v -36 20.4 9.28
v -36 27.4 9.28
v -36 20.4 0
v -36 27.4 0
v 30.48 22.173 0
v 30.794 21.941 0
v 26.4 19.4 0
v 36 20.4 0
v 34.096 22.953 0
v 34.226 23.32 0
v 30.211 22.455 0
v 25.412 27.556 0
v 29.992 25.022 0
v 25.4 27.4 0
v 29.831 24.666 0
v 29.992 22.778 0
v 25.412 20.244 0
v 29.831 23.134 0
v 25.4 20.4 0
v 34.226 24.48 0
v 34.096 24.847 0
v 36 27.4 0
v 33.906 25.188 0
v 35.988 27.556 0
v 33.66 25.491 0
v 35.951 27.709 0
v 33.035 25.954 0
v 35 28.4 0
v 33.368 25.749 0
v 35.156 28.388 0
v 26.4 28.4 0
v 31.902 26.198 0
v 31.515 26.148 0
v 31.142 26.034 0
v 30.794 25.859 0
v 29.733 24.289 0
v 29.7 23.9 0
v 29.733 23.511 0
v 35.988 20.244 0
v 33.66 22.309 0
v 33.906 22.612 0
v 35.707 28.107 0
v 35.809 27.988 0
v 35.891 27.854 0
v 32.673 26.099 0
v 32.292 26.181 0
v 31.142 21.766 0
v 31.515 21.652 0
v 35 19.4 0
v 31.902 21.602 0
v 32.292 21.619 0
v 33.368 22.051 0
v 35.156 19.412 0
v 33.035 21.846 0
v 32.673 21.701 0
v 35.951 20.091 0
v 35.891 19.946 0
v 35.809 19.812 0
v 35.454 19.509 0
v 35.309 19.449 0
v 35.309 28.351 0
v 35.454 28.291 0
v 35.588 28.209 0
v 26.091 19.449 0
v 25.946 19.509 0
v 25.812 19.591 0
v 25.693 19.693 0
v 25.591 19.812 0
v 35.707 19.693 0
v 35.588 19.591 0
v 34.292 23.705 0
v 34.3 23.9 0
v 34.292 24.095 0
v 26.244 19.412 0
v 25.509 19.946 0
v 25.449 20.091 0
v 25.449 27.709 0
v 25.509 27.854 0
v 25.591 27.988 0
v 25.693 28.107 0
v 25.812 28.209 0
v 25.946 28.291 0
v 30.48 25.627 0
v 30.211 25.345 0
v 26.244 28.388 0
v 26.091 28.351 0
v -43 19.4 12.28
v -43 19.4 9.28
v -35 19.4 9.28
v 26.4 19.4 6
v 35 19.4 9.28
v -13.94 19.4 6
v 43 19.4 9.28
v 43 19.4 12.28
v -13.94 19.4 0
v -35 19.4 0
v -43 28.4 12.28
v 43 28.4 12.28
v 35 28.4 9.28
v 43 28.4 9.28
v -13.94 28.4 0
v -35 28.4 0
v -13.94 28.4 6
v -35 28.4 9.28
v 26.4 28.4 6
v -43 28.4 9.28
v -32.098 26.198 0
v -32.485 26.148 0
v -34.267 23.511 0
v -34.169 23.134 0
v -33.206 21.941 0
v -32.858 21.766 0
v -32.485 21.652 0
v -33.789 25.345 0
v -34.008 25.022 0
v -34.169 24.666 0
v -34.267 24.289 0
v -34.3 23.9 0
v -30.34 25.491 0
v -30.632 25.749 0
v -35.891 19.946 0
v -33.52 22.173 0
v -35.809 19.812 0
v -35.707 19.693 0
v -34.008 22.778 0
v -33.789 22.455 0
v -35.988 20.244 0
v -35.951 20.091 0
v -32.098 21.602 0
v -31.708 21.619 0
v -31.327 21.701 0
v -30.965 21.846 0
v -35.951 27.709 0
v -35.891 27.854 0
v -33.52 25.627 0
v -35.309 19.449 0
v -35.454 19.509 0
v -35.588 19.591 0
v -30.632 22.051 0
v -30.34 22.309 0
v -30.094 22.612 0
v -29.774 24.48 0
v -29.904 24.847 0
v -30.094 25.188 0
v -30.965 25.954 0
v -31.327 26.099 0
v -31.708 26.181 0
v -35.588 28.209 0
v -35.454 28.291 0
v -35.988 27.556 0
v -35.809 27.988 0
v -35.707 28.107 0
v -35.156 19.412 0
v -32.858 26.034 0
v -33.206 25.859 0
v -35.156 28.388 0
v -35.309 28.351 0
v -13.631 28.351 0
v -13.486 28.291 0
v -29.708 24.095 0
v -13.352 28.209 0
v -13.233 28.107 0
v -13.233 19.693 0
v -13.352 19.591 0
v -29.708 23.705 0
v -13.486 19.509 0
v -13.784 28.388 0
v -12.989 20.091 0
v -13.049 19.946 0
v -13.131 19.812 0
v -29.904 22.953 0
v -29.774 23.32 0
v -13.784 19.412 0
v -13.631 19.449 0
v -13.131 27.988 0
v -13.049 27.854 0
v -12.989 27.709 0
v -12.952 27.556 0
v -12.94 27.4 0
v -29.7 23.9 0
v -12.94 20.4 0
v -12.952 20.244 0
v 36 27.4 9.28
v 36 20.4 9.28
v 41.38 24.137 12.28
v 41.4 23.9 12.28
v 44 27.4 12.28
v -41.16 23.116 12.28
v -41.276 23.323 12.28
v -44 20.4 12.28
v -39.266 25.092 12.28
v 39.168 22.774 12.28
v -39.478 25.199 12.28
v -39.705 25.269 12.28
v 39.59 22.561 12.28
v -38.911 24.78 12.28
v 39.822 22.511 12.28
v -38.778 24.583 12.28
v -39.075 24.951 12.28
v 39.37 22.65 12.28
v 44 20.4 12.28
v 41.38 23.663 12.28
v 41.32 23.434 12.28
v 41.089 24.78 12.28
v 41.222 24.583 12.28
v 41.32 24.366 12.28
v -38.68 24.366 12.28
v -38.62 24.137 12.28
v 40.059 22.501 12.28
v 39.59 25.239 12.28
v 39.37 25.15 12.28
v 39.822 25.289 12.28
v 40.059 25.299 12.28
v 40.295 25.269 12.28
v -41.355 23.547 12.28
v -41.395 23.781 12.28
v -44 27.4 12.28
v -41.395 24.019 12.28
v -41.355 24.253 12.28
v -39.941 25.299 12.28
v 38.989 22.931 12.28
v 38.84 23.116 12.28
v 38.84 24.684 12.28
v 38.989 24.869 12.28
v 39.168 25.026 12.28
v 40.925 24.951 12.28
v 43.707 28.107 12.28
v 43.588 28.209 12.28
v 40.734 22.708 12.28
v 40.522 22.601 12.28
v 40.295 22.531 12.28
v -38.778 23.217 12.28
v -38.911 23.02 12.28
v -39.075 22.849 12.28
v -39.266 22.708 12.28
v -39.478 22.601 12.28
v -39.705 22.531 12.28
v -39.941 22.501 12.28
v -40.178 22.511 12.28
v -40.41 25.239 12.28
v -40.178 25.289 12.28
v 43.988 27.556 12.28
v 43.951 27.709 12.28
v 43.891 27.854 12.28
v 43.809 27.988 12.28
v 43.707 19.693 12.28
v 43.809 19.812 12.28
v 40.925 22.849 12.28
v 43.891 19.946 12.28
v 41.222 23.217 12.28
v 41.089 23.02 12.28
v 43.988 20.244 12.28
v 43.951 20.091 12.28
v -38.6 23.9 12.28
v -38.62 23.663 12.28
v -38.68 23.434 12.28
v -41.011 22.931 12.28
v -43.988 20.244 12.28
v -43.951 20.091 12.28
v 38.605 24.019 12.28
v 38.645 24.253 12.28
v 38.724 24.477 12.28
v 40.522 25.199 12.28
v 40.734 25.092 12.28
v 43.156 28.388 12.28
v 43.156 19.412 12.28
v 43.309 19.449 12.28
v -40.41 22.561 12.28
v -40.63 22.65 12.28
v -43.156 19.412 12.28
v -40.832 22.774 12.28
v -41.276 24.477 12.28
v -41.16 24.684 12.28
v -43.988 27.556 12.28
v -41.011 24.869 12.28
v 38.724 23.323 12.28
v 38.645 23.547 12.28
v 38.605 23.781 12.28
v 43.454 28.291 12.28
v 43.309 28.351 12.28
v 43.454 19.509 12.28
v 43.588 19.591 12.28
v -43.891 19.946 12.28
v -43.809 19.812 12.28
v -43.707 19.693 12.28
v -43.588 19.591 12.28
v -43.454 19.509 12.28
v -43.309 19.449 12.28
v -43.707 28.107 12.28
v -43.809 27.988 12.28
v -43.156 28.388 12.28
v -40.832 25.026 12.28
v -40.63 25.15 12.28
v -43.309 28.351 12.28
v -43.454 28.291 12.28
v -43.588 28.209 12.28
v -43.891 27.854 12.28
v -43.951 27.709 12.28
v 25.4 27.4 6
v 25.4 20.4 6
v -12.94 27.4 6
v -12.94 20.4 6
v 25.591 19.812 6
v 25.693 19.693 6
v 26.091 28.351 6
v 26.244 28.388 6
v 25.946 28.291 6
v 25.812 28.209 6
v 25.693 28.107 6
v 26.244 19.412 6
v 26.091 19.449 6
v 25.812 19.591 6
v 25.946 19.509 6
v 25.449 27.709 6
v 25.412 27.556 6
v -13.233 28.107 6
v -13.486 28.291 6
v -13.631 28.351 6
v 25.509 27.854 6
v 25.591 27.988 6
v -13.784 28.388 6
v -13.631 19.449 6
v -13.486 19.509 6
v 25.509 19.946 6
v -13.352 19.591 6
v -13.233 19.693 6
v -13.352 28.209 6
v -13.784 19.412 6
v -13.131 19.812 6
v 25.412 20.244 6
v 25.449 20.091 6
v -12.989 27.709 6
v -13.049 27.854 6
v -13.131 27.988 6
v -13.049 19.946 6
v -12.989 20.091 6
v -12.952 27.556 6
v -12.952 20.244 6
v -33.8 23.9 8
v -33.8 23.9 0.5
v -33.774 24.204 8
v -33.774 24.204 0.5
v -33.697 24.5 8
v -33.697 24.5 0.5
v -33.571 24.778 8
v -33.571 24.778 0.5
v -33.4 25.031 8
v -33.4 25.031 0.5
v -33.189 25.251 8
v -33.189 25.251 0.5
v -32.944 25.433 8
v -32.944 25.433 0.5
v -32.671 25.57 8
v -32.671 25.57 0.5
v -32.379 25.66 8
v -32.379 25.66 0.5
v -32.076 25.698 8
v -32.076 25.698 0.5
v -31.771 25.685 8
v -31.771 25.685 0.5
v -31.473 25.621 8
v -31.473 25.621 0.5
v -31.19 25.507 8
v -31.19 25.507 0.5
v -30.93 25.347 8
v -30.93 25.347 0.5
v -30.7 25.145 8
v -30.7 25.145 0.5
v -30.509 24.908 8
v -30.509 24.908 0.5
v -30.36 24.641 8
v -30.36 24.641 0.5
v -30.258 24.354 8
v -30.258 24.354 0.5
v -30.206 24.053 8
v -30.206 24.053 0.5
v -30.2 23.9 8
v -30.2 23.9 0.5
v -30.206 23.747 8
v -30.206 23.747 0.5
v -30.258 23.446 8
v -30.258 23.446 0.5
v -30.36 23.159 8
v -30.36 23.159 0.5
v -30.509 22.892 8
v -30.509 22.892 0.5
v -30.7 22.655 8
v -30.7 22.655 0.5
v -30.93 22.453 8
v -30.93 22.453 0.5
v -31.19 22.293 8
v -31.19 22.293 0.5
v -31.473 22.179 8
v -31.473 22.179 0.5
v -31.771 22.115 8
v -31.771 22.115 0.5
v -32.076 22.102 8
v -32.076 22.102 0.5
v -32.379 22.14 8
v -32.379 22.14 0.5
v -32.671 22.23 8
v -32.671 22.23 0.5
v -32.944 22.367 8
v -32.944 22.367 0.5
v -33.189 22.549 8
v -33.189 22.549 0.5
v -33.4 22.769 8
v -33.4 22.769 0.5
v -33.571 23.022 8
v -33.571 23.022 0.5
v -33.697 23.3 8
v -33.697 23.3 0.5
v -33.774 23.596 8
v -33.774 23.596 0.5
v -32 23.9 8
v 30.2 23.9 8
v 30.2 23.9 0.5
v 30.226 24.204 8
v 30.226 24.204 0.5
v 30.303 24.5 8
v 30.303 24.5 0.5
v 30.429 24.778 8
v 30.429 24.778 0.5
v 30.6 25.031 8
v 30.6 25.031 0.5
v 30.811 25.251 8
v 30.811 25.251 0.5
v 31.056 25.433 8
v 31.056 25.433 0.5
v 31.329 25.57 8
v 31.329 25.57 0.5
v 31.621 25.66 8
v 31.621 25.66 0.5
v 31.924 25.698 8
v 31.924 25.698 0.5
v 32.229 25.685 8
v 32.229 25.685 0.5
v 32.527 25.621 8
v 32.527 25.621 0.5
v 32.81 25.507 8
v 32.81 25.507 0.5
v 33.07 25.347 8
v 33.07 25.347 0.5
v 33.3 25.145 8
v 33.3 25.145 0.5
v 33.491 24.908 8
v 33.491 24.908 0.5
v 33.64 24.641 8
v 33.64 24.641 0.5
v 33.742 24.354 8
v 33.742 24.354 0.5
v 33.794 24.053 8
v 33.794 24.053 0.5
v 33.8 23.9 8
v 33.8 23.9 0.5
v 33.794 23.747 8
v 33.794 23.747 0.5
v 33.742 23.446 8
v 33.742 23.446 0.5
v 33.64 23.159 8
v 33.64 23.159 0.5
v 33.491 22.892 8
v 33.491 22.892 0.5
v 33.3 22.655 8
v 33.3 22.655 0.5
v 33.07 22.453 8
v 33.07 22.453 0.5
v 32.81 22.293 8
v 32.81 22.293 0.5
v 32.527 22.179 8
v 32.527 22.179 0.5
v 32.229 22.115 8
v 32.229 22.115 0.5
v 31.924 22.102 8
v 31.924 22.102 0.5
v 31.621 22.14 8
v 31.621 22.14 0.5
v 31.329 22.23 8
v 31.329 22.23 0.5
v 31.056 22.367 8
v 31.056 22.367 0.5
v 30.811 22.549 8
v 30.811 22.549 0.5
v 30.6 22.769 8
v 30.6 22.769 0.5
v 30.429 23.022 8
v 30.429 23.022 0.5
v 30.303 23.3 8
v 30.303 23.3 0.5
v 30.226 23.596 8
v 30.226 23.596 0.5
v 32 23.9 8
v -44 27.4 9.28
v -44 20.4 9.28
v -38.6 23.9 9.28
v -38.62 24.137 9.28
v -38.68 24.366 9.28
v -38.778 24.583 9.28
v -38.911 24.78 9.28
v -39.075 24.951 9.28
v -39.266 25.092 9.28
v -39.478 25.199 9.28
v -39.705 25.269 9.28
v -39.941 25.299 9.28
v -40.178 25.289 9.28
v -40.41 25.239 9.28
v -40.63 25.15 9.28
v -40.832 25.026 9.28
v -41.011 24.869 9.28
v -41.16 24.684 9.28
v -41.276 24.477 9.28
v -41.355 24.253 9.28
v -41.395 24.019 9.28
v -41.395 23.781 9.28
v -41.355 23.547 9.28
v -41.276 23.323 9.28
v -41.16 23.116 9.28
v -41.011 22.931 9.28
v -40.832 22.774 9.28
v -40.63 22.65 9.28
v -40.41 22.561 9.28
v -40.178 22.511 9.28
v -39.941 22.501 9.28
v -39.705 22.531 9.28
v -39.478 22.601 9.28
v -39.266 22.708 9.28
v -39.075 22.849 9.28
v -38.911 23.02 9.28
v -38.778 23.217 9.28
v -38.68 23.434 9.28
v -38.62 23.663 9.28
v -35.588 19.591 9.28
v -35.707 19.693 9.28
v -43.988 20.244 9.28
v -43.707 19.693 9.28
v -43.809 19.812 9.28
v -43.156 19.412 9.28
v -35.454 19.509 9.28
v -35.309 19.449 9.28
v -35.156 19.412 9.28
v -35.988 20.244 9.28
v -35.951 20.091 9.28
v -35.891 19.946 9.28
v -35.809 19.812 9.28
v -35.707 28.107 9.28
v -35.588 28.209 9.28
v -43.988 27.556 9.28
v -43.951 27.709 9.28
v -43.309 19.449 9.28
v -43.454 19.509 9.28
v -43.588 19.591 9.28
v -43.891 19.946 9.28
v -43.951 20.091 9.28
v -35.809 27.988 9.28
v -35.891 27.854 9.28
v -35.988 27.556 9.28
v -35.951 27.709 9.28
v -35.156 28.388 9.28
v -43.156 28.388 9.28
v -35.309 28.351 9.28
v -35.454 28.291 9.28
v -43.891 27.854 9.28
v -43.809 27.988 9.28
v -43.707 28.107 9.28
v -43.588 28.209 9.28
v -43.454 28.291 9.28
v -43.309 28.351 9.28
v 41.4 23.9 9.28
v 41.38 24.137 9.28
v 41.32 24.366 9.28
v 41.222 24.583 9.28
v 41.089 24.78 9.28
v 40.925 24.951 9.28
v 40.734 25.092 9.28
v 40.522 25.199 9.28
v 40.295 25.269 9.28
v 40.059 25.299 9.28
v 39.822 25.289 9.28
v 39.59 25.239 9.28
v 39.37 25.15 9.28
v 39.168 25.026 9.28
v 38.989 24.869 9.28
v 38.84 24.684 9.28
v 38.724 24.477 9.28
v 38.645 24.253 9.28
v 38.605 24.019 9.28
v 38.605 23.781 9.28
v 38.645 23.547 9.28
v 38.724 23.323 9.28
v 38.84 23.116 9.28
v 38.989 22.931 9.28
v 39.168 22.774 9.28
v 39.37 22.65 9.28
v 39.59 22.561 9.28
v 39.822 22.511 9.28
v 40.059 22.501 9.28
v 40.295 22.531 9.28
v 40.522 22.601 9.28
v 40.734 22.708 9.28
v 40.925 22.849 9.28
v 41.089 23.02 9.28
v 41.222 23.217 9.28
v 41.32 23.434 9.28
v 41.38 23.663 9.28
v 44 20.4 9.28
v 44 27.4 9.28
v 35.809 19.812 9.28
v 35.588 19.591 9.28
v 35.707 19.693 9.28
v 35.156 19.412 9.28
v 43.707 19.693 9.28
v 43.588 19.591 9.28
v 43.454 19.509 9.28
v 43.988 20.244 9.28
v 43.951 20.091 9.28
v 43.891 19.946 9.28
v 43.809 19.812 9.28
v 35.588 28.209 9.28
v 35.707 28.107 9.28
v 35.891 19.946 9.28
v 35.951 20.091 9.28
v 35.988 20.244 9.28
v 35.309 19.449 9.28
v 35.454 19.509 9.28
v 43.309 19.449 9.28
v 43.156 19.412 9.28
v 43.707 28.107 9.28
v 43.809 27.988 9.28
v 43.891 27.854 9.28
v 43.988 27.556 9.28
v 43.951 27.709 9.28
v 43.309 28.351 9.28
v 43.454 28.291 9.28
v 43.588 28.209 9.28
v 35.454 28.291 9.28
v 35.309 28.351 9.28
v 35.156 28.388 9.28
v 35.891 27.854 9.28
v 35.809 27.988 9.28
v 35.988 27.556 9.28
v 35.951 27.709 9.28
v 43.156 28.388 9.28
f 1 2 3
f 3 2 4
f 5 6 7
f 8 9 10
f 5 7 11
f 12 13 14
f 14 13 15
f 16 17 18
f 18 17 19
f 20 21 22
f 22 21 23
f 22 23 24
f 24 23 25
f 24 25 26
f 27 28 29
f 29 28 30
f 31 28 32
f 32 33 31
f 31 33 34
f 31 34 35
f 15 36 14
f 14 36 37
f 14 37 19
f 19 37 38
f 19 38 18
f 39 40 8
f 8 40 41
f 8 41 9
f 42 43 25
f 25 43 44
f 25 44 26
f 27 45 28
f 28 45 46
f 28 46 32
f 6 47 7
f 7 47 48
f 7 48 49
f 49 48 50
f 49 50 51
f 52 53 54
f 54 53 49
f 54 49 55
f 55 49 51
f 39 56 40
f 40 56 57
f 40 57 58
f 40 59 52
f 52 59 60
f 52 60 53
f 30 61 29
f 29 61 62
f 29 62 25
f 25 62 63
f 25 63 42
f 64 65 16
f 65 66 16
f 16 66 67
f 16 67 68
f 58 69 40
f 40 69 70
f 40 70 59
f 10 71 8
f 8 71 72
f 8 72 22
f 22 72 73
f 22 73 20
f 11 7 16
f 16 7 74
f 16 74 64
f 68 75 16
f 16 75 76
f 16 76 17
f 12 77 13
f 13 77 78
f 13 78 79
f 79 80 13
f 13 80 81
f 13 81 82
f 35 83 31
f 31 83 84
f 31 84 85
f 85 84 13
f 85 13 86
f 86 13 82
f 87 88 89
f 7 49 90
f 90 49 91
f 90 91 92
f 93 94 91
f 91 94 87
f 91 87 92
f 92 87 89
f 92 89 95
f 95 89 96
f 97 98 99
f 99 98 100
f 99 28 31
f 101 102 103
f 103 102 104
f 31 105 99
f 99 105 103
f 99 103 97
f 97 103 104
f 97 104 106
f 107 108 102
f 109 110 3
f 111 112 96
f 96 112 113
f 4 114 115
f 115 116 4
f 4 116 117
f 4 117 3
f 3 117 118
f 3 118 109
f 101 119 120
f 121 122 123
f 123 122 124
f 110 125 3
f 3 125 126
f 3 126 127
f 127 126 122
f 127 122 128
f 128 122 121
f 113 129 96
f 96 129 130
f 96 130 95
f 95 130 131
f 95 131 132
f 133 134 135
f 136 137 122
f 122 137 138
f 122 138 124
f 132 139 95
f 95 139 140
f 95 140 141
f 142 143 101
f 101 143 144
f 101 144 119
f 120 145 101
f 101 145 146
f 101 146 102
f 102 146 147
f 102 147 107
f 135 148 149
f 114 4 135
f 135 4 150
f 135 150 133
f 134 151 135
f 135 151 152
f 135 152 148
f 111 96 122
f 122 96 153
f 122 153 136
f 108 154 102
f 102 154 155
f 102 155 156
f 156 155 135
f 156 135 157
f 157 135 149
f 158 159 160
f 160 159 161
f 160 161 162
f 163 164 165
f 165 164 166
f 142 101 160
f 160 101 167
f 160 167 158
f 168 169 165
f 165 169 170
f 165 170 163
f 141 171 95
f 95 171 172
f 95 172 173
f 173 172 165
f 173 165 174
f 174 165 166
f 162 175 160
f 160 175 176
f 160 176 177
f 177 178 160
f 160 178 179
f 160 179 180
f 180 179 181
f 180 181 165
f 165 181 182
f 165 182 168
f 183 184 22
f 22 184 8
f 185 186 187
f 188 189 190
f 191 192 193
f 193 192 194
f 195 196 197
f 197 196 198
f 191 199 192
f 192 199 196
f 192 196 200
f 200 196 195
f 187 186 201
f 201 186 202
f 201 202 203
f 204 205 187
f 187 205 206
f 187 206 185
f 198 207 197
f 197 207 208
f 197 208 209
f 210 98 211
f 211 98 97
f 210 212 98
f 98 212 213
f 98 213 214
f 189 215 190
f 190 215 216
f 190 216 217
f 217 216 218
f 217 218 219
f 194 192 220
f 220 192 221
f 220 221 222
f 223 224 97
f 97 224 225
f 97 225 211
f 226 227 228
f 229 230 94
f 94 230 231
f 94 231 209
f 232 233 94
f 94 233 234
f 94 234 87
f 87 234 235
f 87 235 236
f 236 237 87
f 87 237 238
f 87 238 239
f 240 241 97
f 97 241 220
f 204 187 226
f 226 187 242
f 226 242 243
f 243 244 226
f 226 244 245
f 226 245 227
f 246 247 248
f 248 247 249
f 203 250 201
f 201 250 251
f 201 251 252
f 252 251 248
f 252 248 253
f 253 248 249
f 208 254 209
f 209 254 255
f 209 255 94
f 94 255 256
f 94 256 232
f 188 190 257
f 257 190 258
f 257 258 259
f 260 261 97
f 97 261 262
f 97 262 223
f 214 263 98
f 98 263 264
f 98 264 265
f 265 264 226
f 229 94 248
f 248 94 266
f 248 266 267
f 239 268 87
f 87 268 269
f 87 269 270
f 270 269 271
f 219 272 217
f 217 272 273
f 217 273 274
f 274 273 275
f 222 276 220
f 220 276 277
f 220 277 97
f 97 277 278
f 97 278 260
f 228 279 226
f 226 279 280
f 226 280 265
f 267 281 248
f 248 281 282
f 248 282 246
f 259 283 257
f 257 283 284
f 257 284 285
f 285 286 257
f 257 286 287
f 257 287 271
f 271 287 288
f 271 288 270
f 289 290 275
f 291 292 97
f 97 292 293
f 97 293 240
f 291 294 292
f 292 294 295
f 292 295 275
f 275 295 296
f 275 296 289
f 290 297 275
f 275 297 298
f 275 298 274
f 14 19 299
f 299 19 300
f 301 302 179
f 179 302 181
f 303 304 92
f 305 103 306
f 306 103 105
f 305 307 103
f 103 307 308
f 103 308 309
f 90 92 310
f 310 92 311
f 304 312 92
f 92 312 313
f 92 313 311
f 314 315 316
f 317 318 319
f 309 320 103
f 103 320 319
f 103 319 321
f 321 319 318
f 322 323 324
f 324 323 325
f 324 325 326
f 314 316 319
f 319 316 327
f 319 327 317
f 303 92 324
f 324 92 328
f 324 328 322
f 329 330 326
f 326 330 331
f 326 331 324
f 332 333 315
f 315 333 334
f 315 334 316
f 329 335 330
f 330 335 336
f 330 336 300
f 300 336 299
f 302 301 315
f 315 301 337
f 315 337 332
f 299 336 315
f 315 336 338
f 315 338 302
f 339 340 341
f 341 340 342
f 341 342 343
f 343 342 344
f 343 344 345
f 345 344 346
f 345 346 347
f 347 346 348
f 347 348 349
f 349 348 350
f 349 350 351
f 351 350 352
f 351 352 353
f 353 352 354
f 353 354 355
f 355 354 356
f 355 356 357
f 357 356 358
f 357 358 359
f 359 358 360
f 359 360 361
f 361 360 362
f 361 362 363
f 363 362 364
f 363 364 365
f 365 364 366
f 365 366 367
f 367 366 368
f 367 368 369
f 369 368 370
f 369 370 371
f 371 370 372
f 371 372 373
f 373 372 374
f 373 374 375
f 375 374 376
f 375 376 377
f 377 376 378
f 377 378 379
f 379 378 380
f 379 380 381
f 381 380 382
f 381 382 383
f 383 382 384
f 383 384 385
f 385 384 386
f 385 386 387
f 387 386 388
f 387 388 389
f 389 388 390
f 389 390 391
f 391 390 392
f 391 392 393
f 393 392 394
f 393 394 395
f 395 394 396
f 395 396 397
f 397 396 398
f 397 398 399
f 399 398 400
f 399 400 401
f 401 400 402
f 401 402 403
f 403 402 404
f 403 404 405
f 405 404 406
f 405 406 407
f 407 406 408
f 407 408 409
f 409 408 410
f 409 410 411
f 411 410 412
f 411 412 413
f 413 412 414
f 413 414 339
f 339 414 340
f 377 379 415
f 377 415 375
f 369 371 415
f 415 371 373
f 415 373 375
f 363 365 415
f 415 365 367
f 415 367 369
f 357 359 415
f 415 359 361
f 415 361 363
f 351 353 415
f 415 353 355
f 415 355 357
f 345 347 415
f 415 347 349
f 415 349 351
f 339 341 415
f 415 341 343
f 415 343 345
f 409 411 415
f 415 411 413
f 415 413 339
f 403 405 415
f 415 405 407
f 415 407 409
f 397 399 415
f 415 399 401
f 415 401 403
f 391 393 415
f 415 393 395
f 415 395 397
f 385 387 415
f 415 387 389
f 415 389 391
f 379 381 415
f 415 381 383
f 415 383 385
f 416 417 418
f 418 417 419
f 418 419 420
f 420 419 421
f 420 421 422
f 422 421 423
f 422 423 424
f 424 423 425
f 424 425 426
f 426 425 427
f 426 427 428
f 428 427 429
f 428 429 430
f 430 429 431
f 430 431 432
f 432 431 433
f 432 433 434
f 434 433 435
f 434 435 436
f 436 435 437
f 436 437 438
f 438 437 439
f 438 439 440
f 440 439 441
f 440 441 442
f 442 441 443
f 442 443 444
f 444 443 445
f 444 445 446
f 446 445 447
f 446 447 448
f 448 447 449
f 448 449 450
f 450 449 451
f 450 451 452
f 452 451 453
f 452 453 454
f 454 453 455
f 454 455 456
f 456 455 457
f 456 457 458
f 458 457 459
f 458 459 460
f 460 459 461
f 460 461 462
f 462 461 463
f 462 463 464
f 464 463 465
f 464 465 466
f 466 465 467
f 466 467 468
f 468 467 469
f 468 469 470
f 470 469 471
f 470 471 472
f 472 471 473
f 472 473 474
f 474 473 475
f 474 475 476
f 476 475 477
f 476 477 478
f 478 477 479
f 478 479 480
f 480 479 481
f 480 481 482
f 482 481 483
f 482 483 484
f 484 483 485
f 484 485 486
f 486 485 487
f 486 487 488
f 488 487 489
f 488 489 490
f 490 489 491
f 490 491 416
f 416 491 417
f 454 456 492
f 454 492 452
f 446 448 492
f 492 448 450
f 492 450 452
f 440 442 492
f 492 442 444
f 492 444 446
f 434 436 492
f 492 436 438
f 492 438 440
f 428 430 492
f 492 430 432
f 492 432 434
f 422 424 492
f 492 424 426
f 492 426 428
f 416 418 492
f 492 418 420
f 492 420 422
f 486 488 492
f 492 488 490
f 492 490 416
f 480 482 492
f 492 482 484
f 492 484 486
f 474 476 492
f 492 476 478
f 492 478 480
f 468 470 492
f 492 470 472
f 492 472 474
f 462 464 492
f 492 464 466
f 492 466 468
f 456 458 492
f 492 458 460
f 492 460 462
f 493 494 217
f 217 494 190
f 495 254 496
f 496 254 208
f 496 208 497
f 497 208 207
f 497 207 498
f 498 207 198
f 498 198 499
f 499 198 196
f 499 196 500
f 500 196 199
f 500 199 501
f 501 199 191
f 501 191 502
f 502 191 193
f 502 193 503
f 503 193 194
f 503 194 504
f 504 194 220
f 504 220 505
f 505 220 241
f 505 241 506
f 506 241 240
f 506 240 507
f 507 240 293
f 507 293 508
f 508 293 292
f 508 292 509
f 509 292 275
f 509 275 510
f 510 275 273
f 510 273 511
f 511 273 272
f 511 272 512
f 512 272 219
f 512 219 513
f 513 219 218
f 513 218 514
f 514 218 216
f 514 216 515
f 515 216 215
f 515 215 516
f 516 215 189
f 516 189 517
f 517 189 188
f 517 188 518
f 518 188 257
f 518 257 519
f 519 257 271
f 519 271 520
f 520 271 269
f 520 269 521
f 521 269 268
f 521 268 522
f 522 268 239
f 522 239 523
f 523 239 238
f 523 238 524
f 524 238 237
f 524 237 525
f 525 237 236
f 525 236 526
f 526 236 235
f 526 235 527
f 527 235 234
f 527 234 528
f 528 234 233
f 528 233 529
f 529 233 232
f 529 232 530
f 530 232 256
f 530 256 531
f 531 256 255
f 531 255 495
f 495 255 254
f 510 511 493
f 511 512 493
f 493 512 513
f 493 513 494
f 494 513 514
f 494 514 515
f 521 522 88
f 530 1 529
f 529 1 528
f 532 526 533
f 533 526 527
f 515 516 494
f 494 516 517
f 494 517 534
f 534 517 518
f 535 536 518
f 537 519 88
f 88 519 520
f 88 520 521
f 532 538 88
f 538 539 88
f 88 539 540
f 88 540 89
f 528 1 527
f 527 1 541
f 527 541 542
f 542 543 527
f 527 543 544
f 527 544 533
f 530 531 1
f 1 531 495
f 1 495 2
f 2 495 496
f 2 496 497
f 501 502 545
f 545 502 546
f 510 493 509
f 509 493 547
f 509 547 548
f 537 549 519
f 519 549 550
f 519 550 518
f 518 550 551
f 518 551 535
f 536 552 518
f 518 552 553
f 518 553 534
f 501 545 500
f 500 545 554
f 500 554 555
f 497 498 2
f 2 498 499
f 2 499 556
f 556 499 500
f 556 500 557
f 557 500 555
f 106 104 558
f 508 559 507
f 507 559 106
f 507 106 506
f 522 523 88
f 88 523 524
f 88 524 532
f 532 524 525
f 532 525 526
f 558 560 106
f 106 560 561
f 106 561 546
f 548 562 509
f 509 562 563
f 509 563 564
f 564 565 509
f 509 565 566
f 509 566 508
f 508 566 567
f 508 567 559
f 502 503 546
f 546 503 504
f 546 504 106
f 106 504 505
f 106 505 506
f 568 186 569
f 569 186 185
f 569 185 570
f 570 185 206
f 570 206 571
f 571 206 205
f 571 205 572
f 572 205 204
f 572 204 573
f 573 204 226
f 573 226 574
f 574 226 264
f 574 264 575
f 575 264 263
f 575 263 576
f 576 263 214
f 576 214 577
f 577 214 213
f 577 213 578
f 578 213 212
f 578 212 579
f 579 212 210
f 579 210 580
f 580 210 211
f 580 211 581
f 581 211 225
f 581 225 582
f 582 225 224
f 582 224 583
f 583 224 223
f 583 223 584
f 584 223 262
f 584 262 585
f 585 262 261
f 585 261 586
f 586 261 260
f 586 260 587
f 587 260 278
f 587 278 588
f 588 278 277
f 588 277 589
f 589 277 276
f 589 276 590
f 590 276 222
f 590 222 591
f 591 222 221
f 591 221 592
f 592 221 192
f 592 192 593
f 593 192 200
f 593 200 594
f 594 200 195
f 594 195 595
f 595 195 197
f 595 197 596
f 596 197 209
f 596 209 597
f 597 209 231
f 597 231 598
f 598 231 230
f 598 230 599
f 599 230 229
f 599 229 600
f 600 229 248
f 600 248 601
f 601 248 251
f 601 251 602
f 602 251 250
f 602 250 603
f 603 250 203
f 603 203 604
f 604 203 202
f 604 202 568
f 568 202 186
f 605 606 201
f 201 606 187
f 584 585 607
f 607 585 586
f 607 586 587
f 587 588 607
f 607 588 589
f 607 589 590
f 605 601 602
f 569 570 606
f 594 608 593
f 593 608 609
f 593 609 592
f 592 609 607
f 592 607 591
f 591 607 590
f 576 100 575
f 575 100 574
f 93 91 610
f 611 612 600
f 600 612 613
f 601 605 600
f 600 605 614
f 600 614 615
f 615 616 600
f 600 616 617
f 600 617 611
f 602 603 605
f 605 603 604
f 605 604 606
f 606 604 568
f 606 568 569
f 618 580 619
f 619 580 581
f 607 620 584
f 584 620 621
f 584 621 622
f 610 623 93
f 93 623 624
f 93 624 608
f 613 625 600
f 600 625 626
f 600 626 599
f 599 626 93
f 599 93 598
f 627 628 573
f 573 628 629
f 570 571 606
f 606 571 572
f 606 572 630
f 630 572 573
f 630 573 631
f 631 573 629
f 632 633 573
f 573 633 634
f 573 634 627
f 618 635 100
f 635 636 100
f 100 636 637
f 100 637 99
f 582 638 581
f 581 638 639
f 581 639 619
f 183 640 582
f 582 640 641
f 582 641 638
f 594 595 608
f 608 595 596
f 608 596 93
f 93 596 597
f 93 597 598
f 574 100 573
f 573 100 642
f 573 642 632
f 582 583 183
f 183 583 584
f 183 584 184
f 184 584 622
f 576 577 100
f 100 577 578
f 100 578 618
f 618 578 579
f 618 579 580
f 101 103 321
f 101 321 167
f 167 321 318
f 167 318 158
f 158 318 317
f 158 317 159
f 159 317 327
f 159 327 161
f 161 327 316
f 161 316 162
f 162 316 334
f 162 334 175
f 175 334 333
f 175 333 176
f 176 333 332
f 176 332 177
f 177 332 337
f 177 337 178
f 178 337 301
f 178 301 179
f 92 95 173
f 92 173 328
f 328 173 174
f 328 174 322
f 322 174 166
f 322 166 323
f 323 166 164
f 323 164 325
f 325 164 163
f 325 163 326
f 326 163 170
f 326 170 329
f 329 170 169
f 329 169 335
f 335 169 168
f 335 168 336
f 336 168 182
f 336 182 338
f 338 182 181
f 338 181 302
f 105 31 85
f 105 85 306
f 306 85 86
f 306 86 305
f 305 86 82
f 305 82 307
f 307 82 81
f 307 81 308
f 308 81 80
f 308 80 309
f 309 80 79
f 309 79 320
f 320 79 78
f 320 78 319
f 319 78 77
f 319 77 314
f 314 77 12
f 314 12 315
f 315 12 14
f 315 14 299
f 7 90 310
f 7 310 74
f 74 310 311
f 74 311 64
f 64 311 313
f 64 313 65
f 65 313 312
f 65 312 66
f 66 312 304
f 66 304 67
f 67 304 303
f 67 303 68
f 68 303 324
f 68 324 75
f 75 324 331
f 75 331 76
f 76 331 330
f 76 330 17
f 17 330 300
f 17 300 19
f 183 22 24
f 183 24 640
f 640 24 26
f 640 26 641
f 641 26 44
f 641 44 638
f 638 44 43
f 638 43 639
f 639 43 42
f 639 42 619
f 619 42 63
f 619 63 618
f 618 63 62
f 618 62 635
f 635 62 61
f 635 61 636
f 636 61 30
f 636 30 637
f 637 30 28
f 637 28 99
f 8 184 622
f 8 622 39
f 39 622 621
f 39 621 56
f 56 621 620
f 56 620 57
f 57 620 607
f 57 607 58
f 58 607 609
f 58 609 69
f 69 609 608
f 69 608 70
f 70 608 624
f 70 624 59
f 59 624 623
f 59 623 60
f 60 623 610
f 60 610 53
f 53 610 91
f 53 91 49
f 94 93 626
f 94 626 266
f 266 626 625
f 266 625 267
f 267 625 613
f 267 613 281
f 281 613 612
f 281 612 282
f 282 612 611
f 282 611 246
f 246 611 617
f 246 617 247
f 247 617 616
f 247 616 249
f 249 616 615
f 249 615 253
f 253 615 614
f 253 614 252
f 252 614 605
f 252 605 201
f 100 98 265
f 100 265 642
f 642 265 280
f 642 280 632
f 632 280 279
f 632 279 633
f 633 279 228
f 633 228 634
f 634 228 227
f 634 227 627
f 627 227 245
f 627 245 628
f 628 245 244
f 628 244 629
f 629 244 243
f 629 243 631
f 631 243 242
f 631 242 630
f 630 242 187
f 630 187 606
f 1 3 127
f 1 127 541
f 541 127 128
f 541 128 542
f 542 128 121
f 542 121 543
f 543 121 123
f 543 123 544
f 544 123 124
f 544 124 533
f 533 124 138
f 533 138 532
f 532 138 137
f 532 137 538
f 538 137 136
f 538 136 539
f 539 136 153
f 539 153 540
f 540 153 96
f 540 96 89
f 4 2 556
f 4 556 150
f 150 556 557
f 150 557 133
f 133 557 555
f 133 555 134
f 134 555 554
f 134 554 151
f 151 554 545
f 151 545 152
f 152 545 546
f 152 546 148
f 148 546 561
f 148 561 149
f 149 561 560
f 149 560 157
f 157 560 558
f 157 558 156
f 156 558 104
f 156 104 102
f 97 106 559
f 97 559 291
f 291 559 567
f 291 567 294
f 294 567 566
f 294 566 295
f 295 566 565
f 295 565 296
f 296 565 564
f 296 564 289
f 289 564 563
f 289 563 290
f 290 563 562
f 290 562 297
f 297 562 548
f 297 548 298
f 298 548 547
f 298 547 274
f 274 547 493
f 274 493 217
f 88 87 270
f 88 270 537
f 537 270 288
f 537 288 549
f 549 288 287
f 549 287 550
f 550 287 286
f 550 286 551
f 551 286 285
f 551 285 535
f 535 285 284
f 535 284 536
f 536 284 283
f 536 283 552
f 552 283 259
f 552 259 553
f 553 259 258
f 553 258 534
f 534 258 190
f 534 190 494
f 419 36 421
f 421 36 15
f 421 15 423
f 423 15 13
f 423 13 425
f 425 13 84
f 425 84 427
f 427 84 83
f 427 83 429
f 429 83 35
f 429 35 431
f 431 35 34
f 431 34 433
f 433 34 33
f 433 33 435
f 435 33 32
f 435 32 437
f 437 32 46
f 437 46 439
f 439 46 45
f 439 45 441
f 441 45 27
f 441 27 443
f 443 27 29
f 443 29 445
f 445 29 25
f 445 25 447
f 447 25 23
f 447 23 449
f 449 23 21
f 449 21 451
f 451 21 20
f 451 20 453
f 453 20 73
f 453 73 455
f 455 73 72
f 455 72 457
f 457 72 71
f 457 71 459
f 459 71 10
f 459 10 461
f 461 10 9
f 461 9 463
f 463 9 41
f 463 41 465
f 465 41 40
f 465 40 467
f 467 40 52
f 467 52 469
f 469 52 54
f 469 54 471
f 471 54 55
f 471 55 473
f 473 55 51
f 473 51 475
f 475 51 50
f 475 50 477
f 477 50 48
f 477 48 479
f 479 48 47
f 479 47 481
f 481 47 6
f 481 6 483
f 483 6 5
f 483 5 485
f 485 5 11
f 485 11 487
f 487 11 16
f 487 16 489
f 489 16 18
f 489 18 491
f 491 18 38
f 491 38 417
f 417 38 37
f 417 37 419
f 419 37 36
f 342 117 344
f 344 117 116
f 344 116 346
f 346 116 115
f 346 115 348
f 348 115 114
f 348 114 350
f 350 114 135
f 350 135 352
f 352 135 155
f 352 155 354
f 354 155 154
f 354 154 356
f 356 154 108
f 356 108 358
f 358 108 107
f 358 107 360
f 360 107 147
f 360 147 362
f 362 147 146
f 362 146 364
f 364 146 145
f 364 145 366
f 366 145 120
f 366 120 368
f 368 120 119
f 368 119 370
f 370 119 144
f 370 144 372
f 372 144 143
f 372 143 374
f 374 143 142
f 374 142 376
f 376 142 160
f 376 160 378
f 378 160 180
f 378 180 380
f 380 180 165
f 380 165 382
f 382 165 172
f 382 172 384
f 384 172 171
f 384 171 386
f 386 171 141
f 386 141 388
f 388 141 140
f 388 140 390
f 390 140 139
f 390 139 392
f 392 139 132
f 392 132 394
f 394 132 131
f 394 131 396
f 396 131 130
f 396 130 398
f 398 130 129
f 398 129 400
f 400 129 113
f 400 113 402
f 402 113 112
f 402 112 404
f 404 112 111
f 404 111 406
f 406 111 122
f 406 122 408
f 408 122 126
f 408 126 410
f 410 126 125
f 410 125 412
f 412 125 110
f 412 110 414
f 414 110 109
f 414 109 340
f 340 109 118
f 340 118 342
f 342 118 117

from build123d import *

# Parameters (mm, degrees)
SKETCH1_R           = 1.8
BOSS_EXTRUDE1_DEPTH = 12.28
CUT_EXTRUDE1_DEPTH  = 6
SKETCH1_4_R         = 1.8
CUT_EXTRUDE2_DEPTH  = 8
SKETCH2_W           = 8
SKETCH2_H           = 9
SKETCH2_R           = 1.4
BOSS_EXTRUDE2_DEPTH = 3
FILLET1_R           = 1
CHAMFER1_SIZE       = 0.5


with BuildPart() as part:
    # Sketch1 → Boss-Extrude1 (new body)
    # profile 1 of 5: a face of its own
    with BuildSketch(Plane.XY):
        Polygon((36, 28.4), (25.4, 28.4), (25.4, 27.4), (25.4, 20.4), (25.4, 19.4), (36, 19.4), align=None)
        with Locations((32, 23.9)):
            Circle(SKETCH1_R, mode=Mode.SUBTRACT)
    # profile 2 of 5: a face of its own
    with BuildSketch(Plane.XY):
        with Locations((32, 23.9)):
            Circle(SKETCH1_R)
    # profile 3 of 5: a face of its own
    with BuildSketch(Plane.XY):
        Polygon((-12.94, 28.4), (-36, 28.4), (-36, 19.4), (-12.94, 19.4), (-12.94, 20.4), (-12.94, 27.4), align=None)
        with Locations((-32, 23.9)):
            Circle(SKETCH1_R, mode=Mode.SUBTRACT)
    # profile 4 of 5: a face of its own
    with BuildSketch(Plane.XY):
        with Locations((-32, 23.9)):
            Circle(SKETCH1_R)
    # profile 5 of 5: a face of its own
    with BuildSketch(Plane.XY):
        Polygon((25.4, 28.4), (-12.94, 28.4), (-12.94, 27.4), (-12.94, 20.4), (-12.94, 19.4), (25.4, 19.4), (25.4, 20.4), (25.4, 27.4), align=None)
    extrude(amount=BOSS_EXTRUDE1_DEPTH)

    # Sketch1<3> → Cut-Extrude1 (cut)
    with BuildSketch(Plane.XY):
        Polygon((25.4, 28.4), (-12.94, 28.4), (-12.94, 27.4), (-12.94, 20.4), (-12.94, 19.4), (25.4, 19.4), (25.4, 20.4), (25.4, 27.4), align=None)
    extrude(amount=CUT_EXTRUDE1_DEPTH, mode=Mode.SUBTRACT)

    # Sketch1<4> → Cut-Extrude2 (cut)
    with BuildSketch(Plane.XY):
        with Locations((-32, 23.9)):
            Circle(SKETCH1_4_R)
        with Locations((32, 23.9)):
            Circle(SKETCH1_4_R)
    extrude(amount=CUT_EXTRUDE2_DEPTH, mode=Mode.SUBTRACT)

    # Sketch2 → Boss-Extrude2 (add)
    # profile 1 of 2: a face of its own
    with BuildSketch(Plane.XY.offset(12.28)):
        with Locations((-40, 23.9)):
            Rectangle(SKETCH2_W, SKETCH2_H)
        with Locations((-40, 23.9)):
            Circle(SKETCH2_R, mode=Mode.SUBTRACT)
    # profile 2 of 2: a face of its own
    with BuildSketch(Plane.XY.offset(12.28)):
        with Locations((40, 23.9)):
            Rectangle(SKETCH2_W, SKETCH2_H)
        with Locations((40, 23.9)):
            Circle(SKETCH2_R, mode=Mode.SUBTRACT)
    extrude(amount=-BOSS_EXTRUDE2_DEPTH)

    # Fillet1
    fillet1_edges = [part.edges().sort_by_distance(p)[0] for p in [
        (-12.94, 19.4, 3),
        (25.4, 19.4, 3),
        (25.4, 28.4, 3),
        (-12.94, 28.4, 3),
        (-36, 28.4, 4.64),
        (-36, 19.4, 4.64),
        (36, 28.4, 4.64),
        (36, 19.4, 4.64),
        (-44, 19.4, 10.78),
        (-44, 28.4, 10.78),
        (44, 19.4, 10.78),
        (44, 28.4, 10.78),
    ]]
    fillet(fillet1_edges, radius=FILLET1_R)

    # Chamfer1
    chamfer1_edges = [part.edges().sort_by_distance(p)[0] for p in [
        (-33.8, 23.9, 0),
        (30.2, 23.9, 0),
    ]]
    chamfer(chamfer1_edges, length=CHAMFER1_SIZE)


solid = part.part
